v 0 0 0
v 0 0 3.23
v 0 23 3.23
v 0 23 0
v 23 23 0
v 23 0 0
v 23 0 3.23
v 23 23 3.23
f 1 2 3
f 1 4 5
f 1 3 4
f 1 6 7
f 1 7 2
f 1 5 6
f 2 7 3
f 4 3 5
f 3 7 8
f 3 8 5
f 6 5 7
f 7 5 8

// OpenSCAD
/* Warning, this is a very basic generator with a lot of approximation 
input data : [BFBGA, BWC, 23x23x3.23mm, 773, , A, C04-25198A]
generated by com.zoubworld.electronics.cad.model3d.Basic
Date : Sun Feb 15 10:50:49 CET 2026
*/

//body
color("black")
translate([0,0,0])
cube([23.0,23.0,3.23], center=false);
